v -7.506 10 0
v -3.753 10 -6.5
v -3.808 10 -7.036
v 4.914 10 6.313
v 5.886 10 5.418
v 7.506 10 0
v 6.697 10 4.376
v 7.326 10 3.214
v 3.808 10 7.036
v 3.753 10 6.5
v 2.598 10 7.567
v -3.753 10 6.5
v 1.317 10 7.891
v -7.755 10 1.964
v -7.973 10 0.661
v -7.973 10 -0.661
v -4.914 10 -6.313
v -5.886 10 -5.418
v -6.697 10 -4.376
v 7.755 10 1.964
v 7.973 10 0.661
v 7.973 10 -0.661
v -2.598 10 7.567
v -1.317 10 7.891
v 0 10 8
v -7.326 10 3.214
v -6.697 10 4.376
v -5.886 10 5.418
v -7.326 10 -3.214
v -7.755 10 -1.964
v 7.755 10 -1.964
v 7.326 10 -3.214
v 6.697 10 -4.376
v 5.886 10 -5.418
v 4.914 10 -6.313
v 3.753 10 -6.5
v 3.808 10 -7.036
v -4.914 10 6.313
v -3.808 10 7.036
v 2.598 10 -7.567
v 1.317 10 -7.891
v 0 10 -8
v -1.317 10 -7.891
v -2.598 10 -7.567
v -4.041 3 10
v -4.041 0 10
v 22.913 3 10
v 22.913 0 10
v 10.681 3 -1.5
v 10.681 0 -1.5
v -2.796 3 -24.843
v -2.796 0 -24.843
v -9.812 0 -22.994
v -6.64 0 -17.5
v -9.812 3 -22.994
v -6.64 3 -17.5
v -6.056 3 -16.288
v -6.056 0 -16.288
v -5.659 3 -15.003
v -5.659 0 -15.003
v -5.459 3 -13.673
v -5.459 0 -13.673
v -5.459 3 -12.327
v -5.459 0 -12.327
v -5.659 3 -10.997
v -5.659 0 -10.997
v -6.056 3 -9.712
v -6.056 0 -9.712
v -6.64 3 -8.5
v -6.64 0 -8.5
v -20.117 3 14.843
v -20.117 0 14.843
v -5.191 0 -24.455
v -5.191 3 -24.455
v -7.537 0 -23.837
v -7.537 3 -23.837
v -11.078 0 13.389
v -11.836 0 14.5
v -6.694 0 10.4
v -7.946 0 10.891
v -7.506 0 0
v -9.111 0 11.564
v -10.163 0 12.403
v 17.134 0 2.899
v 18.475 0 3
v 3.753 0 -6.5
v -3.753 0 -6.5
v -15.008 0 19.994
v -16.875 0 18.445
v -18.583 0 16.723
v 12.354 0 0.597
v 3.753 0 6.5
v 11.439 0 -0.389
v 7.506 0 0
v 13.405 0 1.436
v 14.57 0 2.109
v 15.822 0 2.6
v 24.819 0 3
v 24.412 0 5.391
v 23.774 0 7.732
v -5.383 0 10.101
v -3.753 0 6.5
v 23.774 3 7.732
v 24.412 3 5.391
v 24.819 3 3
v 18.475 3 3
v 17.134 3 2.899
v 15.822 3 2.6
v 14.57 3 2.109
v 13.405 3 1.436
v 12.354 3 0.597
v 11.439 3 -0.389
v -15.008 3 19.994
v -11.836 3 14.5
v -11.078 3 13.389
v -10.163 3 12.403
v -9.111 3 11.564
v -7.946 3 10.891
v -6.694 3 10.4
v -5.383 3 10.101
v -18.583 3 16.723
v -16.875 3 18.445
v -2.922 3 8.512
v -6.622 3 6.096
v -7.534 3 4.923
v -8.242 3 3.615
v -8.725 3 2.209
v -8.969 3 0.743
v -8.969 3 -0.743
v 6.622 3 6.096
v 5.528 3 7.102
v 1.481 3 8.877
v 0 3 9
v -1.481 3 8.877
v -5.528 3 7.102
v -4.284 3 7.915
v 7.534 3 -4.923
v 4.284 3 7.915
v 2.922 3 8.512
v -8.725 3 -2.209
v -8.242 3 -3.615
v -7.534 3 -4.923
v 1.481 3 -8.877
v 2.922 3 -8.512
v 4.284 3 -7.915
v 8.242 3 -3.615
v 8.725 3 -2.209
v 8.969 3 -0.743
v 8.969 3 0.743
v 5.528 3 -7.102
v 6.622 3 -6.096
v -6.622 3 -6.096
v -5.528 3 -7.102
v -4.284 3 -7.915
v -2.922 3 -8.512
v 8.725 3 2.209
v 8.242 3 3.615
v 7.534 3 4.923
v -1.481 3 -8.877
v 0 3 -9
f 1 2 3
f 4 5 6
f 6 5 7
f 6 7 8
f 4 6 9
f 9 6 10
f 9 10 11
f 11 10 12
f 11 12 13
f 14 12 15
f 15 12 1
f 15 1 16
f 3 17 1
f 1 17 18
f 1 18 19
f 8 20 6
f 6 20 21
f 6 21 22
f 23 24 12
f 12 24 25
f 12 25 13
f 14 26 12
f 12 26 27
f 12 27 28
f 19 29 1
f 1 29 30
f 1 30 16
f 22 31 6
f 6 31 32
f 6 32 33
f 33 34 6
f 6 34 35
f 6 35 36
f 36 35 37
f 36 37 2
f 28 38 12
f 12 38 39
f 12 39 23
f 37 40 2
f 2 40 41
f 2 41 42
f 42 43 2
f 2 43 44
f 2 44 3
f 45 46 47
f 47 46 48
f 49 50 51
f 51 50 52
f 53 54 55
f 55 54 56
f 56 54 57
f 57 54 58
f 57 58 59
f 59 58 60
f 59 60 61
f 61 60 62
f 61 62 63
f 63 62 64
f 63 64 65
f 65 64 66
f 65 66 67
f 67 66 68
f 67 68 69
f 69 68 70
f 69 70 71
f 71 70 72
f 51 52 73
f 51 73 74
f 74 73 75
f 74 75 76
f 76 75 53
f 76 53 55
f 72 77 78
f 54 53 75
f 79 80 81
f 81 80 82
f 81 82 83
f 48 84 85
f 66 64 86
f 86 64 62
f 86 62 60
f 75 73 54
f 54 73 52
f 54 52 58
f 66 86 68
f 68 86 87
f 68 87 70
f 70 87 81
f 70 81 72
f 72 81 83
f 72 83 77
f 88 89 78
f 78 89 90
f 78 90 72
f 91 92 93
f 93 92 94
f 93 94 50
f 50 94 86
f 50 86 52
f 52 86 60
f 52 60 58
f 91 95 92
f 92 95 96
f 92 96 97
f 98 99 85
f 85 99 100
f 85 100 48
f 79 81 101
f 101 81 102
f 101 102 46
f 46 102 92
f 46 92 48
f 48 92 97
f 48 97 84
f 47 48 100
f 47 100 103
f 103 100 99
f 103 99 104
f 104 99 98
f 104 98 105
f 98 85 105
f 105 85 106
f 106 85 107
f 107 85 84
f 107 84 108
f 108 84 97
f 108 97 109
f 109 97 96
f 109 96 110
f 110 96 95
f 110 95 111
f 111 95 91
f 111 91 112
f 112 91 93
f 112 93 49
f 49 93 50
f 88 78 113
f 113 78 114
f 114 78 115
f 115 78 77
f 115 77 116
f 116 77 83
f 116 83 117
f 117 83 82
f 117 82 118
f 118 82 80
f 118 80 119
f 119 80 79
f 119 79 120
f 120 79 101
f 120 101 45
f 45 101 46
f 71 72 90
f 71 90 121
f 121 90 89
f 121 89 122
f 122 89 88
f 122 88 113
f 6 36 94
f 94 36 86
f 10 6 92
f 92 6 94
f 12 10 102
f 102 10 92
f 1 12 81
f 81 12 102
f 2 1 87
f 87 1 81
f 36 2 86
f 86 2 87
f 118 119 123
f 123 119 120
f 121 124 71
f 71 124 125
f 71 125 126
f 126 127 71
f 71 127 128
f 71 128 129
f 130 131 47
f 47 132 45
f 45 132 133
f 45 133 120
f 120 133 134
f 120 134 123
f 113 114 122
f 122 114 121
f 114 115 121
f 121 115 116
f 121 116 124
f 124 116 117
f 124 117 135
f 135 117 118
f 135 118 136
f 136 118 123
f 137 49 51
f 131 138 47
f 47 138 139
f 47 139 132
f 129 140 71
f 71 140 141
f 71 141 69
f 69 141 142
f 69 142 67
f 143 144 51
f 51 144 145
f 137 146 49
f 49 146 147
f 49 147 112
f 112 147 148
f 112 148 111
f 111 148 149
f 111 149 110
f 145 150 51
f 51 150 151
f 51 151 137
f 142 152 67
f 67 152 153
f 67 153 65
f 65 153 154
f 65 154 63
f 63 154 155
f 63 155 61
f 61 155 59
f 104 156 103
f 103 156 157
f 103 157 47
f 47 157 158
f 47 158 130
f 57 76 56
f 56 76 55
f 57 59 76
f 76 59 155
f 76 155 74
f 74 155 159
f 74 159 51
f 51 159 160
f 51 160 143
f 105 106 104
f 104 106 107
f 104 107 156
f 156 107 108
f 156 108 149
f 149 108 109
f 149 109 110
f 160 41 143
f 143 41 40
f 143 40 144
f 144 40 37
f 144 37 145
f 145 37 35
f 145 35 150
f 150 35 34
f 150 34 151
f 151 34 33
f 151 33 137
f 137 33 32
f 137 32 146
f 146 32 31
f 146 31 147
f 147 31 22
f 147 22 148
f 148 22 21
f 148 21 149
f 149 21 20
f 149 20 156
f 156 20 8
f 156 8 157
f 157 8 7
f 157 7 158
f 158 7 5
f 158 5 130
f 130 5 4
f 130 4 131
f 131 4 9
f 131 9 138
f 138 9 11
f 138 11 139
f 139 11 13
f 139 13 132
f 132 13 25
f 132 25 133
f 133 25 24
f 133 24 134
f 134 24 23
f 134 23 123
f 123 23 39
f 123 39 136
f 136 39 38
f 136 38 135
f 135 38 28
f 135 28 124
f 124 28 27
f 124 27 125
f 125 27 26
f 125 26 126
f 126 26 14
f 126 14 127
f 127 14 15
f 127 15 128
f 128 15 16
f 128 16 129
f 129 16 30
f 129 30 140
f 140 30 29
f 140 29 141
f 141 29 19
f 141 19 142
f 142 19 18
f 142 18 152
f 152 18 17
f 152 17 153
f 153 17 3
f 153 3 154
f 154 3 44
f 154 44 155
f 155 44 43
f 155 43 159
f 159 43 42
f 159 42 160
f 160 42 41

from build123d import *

# Parameters (mm, degrees)
SKETCH1_R           = 1.9
BOSS_EXTRUDE1_DEPTH = 10
CIRPATTERN1_COUNT   = 3
CUT_EXTRUDE1_DEPTH  = 10


with BuildPart() as part:
    # Sketch1 → Boss-Extrude1 (new body)
    with BuildSketch(Plane(origin=(0, 0, 0), x_dir=(1, 0, 0), z_dir=(0, 1, 0))):
        with BuildLine():
            ThreePointArc((-2.7961852, 24.843134833), (-6.371318495, 24.174496905), (-9.811597435, 22.99418526))
            Line((-9.811597435, 22.99418526), (-6.639528096, 17.5))
            ThreePointArc((-6.639528096, 17.5), (-5.43375673, 13), (-6.639528096, 8.5))
            Line((-6.639528096, 8.5), (-17.320508076, -10))
            Line((-17.320508076, -10), (17.320508076, -10))
            Line((17.320508076, -10), (-2.7961852, 24.843134833))
        make_face()
        with Locations(Location((0, 0, 0), (0, 0, 270))):
            Circle(SKETCH1_R, mode=Mode.SUBTRACT)
    boss_extrude1 = extrude(amount=BOSS_EXTRUDE1_DEPTH)

    # CirPattern1: Boss-Extrude1 ×3 about axis
    cirpattern1_axis = Axis((0, 0, 0), (0, 1, 0))
    for i in range(1, CIRPATTERN1_COUNT):
        add(boss_extrude1.rotate(cirpattern1_axis, i * 360 / CIRPATTERN1_COUNT))

    # Sketch3 → Cut-Extrude1 (cut)
    with BuildSketch(Plane(origin=(0, 10, 0), x_dir=(1, 0, 0), z_dir=(0, 1, 0))):
        Polygon((3.75277675, 6.5), (-3.75277675, 6.5), (-7.505553499, 0), (-3.75277675, -6.5), (3.75277675, -6.5), (7.505553499, 0), align=None)
    extrude(amount=-CUT_EXTRUDE1_DEPTH, mode=Mode.SUBTRACT)

    # Sketch5 → Cut-Revolve2 (revolve, cut)
    with BuildSketch(Plane.XY, mode=Mode.PRIVATE) as cut_revolve2_sk:
        Polygon((8, 10), (29.75960594, 10), (29.75960594, 3), (9, 3), align=None)
    revolve(cut_revolve2_sk.sketch.rotate(Axis((0, 0, 0), (0, 1, 0)), 90), axis=Axis((0, 0, 0), (0, 1, 0)), mode=Mode.SUBTRACT)


solid = part.part
